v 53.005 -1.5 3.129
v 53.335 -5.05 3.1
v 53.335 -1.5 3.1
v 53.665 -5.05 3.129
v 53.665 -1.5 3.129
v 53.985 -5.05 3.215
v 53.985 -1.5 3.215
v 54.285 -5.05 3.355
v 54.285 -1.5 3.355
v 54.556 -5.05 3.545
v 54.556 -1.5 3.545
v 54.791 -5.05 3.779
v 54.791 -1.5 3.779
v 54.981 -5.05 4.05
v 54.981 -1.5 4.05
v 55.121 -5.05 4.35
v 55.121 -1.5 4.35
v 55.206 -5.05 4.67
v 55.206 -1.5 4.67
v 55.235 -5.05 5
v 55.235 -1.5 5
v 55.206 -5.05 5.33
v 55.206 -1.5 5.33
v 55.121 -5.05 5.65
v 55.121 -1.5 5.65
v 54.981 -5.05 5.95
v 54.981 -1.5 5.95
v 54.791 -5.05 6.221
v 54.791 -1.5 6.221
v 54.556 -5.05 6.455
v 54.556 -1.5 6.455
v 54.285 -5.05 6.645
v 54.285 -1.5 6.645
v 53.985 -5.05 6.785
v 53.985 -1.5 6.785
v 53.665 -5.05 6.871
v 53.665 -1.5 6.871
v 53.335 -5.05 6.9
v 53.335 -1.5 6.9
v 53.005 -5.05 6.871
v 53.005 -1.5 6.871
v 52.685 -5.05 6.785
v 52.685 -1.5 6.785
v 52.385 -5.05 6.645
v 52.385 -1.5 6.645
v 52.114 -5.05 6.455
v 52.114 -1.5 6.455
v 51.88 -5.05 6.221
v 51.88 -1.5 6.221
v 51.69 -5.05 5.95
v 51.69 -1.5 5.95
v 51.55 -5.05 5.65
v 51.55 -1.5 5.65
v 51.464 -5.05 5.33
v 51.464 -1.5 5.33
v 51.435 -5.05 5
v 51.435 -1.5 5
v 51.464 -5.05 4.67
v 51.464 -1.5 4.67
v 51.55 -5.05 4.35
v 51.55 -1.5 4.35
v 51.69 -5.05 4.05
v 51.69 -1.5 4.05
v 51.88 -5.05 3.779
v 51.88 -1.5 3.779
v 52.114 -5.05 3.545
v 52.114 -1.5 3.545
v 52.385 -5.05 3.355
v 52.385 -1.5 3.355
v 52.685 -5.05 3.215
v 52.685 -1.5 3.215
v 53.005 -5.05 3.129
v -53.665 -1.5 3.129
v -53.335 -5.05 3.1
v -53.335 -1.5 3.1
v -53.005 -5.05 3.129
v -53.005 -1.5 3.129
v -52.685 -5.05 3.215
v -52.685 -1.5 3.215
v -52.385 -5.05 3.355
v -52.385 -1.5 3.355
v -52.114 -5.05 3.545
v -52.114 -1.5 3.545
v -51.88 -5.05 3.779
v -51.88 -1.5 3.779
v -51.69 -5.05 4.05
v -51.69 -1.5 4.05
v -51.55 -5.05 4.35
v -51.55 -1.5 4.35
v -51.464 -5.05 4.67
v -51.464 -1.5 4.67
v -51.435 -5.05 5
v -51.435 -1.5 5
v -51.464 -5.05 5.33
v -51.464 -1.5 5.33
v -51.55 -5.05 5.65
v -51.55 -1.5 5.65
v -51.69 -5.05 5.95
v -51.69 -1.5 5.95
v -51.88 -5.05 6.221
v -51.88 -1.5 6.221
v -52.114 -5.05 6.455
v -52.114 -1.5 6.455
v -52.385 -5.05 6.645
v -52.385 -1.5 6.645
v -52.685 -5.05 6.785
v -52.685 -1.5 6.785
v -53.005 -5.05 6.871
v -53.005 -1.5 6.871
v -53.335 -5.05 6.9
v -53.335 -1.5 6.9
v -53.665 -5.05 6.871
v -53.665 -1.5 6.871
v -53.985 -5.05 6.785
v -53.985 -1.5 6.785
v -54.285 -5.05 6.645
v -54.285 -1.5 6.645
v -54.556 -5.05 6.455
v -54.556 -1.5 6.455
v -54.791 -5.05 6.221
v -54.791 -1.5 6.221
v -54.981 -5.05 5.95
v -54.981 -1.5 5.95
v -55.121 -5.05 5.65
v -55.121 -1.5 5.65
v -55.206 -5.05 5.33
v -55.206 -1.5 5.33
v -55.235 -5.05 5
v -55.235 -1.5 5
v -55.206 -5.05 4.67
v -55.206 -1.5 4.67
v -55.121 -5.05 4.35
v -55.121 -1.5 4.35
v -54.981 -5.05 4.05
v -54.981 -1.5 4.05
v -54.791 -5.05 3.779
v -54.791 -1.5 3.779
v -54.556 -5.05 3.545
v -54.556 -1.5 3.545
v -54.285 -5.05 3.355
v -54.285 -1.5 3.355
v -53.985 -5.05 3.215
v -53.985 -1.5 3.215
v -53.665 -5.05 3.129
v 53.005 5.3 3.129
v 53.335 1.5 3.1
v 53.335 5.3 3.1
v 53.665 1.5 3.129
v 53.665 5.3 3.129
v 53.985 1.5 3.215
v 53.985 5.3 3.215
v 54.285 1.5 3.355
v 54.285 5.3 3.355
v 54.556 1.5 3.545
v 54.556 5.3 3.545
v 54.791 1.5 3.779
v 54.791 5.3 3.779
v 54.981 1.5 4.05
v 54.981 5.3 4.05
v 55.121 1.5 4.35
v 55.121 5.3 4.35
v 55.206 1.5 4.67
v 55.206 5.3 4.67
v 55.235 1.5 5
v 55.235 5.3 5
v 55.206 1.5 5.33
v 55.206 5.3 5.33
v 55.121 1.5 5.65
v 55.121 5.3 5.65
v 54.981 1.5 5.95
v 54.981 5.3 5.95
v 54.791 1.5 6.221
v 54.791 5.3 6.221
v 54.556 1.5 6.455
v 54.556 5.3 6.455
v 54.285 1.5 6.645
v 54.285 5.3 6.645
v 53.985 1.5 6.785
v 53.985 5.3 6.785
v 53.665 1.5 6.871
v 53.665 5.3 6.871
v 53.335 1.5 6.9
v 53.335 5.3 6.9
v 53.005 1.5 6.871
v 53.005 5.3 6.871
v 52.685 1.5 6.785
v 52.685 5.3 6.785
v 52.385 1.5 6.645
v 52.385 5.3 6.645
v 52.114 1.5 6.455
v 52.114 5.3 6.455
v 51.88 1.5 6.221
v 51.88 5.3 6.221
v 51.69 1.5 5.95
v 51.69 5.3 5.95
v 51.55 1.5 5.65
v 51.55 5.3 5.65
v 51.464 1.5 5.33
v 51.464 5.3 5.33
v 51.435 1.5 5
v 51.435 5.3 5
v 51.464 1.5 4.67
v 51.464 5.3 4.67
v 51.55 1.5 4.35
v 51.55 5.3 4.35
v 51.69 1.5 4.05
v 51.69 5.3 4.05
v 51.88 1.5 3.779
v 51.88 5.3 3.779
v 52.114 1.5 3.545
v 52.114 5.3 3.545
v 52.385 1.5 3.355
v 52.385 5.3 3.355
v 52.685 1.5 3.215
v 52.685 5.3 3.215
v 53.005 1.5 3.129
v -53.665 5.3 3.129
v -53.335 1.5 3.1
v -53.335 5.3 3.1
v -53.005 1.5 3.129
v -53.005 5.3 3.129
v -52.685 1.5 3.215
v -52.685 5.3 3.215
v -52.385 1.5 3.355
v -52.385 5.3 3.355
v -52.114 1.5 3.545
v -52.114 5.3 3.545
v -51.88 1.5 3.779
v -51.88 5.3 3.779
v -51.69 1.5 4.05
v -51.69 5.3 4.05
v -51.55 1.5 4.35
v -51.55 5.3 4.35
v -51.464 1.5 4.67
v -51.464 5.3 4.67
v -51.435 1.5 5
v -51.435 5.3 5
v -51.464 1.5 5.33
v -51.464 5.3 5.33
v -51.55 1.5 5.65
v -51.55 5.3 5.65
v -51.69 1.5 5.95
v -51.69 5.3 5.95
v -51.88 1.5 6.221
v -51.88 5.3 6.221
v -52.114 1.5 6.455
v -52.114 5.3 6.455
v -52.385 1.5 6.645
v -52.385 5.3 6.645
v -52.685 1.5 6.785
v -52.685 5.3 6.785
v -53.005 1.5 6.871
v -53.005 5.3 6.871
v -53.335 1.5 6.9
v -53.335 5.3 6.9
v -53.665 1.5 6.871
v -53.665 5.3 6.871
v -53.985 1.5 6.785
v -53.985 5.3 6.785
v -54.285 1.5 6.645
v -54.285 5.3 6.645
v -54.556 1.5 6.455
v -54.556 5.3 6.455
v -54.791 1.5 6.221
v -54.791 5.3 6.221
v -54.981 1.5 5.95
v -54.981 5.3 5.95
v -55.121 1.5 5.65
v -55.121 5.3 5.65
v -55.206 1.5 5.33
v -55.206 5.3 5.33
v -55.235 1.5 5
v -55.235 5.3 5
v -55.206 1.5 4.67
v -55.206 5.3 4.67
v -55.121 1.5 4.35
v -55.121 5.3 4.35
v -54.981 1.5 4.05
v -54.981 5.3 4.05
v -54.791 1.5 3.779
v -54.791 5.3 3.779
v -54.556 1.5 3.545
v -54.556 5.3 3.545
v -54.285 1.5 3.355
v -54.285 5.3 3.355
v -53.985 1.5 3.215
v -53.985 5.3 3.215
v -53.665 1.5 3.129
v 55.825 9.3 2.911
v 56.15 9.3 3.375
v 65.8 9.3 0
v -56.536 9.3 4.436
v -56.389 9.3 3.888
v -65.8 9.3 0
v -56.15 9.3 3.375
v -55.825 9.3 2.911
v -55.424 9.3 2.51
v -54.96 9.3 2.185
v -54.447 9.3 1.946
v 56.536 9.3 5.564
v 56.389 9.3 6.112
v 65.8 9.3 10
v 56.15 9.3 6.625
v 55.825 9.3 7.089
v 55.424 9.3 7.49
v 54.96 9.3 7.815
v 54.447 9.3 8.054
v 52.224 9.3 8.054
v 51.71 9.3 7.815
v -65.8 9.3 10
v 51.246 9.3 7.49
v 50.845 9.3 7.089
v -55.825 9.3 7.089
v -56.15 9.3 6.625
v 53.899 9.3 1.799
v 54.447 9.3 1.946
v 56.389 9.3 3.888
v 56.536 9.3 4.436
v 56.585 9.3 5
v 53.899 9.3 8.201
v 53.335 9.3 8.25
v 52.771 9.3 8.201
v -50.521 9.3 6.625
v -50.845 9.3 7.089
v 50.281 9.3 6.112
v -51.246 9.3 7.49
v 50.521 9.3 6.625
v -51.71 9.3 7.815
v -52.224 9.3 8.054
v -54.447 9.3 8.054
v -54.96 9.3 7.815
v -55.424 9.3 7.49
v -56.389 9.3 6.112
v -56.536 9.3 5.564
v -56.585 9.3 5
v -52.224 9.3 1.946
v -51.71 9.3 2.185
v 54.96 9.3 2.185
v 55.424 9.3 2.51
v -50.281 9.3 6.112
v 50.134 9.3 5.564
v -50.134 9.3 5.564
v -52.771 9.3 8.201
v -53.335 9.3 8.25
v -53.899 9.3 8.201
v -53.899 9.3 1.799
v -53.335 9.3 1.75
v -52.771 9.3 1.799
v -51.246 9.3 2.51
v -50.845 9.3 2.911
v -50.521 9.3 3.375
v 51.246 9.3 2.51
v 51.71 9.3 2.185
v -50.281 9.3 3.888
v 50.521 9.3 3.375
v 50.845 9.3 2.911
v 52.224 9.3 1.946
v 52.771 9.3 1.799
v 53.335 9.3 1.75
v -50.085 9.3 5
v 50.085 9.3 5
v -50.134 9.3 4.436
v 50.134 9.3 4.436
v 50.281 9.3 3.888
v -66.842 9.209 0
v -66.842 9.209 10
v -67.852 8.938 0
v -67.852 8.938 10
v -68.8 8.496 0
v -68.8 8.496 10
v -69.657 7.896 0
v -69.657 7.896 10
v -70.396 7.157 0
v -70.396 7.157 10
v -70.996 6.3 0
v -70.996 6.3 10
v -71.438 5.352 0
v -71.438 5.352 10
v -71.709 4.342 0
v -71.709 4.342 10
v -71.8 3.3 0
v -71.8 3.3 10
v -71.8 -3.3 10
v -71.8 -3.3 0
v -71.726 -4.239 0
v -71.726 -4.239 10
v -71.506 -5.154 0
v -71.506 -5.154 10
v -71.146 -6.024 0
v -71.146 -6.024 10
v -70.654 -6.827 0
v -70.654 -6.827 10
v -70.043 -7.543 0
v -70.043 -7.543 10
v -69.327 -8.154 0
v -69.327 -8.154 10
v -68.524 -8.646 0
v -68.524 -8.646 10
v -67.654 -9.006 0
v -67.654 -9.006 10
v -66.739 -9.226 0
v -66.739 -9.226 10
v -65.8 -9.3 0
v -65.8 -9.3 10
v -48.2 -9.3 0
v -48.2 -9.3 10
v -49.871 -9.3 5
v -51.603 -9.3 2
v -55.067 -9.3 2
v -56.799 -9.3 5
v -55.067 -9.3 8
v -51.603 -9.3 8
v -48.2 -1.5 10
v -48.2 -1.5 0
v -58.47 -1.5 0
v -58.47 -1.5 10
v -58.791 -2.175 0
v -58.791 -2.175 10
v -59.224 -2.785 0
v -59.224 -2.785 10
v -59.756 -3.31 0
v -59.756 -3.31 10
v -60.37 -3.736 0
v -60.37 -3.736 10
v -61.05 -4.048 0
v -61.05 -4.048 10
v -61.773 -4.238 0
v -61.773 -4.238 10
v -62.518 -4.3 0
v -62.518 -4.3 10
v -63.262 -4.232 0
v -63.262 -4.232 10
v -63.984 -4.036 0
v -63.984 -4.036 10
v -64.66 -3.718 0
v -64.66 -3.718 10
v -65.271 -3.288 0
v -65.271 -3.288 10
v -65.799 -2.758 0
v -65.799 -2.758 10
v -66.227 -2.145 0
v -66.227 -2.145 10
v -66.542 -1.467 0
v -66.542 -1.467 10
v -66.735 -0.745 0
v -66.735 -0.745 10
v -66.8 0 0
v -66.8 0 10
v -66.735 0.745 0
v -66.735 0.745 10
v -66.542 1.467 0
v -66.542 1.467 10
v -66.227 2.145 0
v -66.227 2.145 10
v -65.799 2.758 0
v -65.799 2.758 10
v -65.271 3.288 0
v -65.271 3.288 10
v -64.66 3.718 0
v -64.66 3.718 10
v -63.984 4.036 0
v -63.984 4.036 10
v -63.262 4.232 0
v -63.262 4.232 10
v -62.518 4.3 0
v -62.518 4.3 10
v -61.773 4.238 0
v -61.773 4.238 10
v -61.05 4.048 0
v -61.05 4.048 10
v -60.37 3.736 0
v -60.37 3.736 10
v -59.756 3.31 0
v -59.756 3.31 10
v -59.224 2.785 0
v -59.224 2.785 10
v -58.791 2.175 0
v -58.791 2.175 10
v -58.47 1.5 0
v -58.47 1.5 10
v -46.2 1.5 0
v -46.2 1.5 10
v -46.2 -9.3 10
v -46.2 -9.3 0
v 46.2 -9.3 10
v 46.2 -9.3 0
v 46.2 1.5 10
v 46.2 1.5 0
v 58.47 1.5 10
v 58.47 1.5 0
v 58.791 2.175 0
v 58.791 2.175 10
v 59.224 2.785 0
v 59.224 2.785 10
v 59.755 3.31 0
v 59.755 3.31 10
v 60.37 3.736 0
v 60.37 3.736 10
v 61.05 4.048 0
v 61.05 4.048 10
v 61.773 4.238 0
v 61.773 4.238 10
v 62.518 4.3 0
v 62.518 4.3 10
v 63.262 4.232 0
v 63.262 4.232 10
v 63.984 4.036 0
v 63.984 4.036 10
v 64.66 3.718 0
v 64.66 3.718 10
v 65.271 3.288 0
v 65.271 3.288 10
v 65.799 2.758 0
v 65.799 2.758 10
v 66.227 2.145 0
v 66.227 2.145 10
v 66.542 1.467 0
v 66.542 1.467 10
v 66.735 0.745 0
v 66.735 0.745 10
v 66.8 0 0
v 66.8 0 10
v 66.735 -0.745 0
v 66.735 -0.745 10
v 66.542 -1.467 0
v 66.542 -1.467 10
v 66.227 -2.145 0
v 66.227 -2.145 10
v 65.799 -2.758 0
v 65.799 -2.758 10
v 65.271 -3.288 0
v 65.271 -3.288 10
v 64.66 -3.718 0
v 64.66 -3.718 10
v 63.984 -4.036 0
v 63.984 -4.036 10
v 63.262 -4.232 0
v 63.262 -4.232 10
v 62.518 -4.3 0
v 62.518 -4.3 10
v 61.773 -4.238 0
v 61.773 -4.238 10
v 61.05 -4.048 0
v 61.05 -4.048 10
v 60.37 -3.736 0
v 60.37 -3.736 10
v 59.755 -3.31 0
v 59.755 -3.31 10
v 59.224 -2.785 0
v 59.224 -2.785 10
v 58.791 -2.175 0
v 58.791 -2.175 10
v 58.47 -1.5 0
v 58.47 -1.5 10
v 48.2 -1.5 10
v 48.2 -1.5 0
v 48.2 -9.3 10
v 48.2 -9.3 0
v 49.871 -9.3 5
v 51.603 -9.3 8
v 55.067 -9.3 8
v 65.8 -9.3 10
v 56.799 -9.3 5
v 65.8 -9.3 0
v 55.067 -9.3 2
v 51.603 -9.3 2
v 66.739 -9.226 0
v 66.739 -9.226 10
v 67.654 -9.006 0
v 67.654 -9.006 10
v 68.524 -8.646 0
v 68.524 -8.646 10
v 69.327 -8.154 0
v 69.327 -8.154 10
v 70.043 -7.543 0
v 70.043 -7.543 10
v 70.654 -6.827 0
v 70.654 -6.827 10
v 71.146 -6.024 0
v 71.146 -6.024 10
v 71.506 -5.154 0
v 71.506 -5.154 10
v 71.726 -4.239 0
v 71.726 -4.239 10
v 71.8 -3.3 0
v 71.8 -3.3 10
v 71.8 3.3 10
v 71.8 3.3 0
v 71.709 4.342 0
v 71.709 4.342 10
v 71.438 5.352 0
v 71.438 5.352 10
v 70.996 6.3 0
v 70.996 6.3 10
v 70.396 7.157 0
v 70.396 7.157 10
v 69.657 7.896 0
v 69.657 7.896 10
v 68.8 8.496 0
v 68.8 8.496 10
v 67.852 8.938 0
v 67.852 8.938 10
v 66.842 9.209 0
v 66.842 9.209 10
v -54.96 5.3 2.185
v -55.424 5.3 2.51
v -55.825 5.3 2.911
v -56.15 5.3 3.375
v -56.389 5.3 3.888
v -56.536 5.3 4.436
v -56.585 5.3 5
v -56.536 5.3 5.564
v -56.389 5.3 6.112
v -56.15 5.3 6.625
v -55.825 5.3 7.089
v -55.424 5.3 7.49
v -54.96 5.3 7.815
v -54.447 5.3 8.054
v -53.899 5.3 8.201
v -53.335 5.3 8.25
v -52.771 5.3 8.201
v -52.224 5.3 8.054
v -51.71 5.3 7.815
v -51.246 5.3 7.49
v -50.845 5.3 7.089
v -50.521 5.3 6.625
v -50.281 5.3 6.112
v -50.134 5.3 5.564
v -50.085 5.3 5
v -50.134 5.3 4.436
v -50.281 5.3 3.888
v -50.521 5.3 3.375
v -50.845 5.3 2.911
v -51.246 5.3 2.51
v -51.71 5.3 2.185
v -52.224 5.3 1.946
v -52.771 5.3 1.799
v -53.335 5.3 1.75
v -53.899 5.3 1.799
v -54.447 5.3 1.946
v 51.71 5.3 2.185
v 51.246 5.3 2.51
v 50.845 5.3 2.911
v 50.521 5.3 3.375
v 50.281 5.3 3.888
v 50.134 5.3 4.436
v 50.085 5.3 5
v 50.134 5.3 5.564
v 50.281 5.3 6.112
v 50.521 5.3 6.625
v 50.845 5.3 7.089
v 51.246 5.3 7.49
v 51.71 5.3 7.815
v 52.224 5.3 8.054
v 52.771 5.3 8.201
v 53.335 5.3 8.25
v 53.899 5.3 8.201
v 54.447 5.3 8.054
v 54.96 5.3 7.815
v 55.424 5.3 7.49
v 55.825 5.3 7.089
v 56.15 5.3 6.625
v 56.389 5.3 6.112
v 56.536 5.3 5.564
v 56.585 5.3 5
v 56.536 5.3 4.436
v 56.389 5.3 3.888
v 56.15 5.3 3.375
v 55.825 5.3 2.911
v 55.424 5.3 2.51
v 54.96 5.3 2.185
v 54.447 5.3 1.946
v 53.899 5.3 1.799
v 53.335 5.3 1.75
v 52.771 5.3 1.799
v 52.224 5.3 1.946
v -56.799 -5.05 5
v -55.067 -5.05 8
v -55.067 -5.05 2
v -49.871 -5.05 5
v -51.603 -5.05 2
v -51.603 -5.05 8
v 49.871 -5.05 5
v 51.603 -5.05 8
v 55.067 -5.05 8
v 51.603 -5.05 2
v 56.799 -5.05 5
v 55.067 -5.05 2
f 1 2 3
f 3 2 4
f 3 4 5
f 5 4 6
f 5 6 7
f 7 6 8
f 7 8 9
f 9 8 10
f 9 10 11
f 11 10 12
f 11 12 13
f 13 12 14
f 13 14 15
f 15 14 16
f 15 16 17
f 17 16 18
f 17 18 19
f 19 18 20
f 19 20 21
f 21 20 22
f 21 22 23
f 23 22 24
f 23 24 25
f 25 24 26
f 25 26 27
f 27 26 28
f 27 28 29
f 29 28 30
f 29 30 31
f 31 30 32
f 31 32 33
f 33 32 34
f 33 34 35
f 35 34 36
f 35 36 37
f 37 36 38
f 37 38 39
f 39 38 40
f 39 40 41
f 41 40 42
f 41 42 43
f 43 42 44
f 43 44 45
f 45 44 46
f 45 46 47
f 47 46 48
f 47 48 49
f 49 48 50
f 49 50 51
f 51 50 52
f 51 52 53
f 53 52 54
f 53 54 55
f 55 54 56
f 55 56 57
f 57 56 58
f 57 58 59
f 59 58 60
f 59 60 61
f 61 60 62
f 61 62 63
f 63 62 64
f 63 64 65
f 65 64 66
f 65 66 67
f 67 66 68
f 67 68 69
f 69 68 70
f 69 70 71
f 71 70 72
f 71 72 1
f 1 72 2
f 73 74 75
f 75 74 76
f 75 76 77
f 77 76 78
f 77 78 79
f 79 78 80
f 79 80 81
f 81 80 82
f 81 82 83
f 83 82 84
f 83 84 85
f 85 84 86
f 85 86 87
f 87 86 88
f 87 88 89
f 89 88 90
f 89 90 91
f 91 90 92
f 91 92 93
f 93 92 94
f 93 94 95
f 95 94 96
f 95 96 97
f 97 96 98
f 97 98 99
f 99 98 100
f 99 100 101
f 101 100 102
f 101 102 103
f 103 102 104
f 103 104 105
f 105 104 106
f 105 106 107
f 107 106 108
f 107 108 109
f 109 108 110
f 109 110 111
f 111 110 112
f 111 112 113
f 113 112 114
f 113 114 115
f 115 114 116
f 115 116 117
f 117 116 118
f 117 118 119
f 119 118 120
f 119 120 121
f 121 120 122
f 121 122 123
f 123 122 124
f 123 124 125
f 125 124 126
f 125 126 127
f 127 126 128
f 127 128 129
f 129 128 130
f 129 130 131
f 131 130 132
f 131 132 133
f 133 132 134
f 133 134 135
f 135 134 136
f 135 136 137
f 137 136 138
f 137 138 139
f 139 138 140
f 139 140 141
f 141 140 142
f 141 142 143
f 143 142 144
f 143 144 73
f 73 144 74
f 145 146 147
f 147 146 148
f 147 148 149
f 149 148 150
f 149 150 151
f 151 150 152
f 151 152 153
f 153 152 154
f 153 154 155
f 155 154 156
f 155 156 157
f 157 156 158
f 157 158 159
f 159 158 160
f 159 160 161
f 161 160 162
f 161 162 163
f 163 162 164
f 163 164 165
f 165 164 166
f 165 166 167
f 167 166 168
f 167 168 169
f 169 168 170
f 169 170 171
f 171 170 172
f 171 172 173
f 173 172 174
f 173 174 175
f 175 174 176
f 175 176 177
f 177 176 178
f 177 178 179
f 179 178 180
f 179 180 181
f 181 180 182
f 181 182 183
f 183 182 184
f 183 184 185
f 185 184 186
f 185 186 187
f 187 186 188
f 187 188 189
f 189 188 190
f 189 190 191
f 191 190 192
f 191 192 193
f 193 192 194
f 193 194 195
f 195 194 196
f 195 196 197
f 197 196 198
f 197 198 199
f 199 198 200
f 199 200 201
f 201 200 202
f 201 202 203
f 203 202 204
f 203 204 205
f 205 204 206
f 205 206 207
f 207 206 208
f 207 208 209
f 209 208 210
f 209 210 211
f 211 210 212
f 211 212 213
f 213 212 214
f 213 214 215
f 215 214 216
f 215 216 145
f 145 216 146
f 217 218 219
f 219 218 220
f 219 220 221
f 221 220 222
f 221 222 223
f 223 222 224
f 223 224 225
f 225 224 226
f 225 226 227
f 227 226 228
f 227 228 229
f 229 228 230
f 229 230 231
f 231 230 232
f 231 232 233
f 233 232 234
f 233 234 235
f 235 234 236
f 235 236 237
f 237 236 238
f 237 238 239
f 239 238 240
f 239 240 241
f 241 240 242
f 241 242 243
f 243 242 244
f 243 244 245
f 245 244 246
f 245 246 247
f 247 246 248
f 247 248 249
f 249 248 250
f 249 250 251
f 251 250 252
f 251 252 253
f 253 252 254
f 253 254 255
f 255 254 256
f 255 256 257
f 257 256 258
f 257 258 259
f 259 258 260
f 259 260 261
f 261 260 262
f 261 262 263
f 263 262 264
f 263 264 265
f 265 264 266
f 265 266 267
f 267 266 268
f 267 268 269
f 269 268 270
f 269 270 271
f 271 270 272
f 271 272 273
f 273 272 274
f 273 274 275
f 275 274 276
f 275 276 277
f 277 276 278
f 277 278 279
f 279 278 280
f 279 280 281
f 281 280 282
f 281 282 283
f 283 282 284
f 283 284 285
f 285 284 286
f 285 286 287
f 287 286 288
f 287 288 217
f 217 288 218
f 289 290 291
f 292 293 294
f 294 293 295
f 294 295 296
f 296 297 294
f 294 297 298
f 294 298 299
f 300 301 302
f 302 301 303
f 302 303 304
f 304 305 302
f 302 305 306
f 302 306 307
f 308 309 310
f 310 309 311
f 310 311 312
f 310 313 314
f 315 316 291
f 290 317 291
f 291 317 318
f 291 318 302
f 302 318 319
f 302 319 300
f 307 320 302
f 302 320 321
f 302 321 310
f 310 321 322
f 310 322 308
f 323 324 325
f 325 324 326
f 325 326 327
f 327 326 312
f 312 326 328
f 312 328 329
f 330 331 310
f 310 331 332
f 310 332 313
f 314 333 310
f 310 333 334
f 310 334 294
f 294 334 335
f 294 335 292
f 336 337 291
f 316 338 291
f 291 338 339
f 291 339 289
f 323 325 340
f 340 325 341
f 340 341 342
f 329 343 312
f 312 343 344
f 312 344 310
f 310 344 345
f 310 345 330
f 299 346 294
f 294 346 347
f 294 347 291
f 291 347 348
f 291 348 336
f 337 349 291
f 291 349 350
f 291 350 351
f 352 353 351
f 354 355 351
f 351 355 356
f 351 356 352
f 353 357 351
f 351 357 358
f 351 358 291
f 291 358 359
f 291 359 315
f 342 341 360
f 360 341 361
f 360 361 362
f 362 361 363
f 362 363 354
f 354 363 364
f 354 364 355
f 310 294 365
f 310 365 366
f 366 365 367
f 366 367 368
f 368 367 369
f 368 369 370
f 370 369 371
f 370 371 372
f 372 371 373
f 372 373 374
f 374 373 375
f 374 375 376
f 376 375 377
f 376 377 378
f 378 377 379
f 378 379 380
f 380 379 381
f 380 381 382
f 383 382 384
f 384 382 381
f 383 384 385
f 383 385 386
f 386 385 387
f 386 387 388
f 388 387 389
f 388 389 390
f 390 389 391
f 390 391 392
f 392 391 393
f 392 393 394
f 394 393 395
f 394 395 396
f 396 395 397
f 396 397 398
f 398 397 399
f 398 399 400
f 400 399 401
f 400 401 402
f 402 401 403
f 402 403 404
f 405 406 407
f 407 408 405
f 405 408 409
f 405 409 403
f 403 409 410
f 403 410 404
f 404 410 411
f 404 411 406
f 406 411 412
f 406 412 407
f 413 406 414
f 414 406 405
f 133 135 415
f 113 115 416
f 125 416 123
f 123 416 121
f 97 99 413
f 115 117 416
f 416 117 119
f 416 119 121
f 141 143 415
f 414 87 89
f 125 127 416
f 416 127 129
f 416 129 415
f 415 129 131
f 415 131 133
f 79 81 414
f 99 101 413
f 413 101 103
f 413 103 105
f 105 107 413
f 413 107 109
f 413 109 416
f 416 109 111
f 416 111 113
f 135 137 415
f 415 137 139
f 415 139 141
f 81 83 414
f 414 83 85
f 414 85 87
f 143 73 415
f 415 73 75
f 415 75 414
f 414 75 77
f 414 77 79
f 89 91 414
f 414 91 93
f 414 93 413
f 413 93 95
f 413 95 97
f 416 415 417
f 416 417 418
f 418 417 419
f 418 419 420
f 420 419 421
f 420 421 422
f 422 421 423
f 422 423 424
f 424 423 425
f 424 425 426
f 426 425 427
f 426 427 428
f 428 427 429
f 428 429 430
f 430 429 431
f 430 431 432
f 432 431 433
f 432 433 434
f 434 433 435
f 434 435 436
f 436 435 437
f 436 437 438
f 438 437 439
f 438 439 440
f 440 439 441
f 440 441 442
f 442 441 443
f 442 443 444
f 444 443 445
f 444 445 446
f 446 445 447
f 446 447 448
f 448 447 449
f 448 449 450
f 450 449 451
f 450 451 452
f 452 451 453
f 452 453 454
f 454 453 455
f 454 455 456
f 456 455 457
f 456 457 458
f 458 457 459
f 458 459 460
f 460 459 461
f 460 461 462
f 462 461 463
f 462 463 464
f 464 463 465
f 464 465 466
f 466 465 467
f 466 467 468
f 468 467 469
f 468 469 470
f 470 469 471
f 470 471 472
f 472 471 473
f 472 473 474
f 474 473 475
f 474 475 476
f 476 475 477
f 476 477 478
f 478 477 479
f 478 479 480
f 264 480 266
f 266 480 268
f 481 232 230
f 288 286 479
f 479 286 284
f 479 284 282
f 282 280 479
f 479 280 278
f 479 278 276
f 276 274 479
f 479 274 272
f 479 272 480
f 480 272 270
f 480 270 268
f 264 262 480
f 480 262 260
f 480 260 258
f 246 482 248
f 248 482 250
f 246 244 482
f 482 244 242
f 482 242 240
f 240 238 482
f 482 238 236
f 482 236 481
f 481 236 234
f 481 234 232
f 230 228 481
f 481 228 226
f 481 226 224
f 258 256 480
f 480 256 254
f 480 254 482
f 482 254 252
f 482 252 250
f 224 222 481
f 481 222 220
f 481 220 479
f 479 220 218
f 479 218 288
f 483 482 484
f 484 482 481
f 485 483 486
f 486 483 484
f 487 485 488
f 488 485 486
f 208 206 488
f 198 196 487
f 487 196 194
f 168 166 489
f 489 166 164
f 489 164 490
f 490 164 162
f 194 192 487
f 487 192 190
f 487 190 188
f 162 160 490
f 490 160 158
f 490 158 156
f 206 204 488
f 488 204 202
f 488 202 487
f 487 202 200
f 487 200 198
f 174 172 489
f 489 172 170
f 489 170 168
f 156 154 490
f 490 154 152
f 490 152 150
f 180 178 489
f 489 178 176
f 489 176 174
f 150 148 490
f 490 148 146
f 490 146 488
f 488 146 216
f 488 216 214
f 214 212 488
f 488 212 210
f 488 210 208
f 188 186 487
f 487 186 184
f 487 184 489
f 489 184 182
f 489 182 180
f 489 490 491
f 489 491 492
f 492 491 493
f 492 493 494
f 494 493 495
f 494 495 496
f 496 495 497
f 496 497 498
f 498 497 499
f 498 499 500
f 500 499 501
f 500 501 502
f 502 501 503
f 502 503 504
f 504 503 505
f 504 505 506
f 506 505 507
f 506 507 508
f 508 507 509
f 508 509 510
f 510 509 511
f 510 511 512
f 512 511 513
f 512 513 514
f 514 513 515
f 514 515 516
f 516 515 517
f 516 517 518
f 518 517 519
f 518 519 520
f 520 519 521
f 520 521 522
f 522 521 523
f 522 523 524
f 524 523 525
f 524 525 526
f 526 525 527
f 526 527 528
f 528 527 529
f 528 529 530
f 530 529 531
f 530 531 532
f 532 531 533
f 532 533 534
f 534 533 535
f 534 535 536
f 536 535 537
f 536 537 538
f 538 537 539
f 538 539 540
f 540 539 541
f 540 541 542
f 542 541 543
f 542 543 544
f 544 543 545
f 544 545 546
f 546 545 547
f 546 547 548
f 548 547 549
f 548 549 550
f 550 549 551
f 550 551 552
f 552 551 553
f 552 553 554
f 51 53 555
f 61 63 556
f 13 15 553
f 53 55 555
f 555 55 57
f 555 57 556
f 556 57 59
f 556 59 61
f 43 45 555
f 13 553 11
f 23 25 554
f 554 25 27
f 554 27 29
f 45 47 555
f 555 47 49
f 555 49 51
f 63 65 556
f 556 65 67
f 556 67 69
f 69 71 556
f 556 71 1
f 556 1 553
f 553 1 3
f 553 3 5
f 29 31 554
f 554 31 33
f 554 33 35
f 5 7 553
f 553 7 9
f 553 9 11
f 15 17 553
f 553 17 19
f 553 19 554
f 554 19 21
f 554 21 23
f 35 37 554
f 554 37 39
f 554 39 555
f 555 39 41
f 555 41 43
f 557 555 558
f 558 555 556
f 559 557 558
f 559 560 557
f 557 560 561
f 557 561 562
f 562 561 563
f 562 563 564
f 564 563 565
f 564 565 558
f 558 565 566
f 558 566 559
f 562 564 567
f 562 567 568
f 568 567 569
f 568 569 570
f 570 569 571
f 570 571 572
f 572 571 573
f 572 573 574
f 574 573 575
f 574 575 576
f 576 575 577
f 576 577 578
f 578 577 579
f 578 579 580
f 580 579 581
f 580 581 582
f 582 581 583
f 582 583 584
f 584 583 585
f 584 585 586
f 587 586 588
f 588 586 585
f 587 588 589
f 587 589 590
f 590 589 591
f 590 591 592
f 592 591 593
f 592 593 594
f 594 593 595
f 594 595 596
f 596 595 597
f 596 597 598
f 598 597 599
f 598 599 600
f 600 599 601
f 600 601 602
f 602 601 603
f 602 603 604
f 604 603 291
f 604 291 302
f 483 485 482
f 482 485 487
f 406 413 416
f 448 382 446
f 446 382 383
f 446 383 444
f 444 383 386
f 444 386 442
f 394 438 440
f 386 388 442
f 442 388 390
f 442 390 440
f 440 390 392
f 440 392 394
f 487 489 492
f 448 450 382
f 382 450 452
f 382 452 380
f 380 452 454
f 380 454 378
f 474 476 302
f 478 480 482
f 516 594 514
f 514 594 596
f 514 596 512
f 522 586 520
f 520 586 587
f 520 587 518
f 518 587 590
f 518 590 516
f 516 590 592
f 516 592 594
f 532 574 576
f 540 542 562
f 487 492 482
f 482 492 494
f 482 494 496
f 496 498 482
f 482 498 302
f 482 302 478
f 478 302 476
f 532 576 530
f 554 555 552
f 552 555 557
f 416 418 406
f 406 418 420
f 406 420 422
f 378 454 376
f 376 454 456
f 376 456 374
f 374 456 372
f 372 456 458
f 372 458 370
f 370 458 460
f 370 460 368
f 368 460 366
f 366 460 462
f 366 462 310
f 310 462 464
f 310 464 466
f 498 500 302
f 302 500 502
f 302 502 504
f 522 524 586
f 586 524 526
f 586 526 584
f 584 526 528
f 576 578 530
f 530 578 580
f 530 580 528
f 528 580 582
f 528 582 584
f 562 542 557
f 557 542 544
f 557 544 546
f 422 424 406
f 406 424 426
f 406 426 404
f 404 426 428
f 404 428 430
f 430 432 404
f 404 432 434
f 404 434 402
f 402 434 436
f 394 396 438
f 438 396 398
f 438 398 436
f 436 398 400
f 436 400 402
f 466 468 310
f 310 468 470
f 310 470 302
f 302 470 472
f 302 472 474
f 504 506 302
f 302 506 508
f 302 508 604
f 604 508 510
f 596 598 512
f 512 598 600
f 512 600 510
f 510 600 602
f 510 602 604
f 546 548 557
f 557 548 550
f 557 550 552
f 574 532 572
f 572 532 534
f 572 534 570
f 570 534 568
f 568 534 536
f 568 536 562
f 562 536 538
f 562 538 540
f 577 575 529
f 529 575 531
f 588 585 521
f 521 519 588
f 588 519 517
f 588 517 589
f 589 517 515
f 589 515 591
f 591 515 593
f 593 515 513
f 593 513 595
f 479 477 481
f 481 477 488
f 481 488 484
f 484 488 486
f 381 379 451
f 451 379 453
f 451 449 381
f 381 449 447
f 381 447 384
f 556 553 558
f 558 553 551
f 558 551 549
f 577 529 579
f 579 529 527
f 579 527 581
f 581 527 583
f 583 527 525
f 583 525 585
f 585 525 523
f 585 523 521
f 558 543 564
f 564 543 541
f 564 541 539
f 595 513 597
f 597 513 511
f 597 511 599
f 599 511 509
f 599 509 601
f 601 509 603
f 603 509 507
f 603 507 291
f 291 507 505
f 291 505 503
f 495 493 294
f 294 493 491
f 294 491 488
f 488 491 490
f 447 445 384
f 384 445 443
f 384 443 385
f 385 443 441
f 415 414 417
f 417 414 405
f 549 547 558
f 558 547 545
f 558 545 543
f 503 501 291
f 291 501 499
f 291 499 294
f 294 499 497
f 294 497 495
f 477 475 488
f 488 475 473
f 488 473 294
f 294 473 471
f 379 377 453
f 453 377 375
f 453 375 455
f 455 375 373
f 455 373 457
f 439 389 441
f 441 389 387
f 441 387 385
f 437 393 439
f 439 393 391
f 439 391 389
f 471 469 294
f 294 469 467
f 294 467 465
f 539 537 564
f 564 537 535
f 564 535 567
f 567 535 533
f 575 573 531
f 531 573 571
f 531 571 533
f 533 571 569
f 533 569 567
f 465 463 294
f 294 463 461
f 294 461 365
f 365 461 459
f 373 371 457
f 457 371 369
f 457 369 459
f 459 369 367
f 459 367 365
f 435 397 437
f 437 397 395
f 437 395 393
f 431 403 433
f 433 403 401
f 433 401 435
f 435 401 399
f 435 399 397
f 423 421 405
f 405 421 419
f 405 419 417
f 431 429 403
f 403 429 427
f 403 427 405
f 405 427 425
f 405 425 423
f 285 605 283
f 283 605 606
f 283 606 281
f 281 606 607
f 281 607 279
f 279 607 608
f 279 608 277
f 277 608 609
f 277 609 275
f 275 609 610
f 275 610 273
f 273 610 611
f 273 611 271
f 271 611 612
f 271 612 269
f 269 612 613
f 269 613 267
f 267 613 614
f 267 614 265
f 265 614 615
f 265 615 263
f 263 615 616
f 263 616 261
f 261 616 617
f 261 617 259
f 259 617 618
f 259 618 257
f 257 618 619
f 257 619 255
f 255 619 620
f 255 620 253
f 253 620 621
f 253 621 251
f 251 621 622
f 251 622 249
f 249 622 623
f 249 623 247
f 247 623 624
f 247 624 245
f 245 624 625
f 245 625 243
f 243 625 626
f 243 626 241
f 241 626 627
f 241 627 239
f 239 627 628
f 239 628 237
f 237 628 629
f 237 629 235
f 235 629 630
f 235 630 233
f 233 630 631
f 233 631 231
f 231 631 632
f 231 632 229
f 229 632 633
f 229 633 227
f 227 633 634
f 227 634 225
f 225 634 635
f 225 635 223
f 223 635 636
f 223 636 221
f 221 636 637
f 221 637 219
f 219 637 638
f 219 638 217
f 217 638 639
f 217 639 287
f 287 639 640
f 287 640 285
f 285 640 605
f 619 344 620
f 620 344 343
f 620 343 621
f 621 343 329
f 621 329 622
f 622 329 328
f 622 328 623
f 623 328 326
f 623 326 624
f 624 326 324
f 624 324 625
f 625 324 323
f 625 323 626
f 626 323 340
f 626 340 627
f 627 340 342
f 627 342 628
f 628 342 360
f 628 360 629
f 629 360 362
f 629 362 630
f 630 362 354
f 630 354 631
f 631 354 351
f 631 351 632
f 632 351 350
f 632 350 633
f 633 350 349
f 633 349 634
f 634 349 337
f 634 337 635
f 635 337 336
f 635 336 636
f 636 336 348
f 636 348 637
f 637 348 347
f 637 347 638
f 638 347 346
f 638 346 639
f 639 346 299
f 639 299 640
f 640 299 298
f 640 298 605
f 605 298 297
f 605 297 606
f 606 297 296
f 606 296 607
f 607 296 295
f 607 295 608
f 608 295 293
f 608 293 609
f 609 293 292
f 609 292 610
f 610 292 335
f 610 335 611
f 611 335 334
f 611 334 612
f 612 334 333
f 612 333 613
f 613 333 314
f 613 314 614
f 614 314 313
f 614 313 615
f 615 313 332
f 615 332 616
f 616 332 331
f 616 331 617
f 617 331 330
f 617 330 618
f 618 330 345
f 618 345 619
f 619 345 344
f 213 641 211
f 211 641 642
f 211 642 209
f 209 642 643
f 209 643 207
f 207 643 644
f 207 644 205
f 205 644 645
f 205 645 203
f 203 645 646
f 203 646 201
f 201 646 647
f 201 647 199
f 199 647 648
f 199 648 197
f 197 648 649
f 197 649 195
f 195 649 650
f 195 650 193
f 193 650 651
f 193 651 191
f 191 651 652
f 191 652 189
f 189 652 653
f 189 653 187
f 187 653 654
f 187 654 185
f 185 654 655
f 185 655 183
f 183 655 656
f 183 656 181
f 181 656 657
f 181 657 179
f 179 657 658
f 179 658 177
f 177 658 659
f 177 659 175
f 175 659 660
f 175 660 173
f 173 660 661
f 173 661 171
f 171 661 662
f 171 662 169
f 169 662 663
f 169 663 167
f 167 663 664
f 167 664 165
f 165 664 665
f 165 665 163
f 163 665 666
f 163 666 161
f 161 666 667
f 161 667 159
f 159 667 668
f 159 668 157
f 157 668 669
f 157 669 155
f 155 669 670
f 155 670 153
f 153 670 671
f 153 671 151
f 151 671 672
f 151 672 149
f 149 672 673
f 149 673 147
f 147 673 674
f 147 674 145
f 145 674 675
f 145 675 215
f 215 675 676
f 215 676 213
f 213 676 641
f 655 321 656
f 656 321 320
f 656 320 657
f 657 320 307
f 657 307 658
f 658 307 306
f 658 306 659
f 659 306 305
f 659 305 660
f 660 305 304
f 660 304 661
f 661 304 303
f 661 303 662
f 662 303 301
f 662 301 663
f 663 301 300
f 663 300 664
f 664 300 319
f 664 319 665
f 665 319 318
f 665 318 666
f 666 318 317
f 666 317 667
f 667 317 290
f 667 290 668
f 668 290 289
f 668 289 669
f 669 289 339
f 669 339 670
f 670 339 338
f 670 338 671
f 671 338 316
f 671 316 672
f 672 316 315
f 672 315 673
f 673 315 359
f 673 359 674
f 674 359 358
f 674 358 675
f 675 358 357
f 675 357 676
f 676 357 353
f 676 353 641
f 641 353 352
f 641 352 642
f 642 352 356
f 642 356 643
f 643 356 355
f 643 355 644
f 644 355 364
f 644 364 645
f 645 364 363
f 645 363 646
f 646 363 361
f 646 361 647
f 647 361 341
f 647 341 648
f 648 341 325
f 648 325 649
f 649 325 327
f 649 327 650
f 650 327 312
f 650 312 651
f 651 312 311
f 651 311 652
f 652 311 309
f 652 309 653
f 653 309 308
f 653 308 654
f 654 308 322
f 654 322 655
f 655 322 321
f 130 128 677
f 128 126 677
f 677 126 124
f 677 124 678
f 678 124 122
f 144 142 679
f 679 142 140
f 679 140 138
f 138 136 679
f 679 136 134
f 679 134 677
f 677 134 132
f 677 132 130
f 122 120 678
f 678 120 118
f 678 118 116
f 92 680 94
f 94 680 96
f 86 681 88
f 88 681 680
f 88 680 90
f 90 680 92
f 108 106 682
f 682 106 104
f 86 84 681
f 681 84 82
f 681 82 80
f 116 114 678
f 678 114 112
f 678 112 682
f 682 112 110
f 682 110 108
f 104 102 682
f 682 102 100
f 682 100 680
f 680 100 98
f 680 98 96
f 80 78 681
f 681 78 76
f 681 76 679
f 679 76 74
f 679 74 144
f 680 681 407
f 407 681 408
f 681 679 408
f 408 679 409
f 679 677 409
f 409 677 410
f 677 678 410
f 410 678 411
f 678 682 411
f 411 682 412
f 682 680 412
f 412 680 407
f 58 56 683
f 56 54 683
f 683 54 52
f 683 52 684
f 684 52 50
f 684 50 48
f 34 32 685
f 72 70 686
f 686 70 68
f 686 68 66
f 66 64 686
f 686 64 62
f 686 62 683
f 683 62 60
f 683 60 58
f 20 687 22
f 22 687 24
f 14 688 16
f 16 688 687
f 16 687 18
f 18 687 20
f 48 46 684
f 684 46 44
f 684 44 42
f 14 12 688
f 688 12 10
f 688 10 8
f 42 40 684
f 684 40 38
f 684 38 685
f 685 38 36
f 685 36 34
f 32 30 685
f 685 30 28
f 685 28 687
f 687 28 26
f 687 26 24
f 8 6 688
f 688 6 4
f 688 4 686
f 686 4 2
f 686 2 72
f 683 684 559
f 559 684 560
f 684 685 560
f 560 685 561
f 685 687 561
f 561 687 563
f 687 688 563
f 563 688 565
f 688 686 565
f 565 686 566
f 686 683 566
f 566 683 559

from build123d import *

# Parameters (mm, degrees)
SALIENTE_EXTRUIR1_DEPTH = 10
CROQUIS2_R              = 1.9
CORTAR_EXTRUIR1_DEPTH   = 25
CROQUIS5_R              = 3.25
CORTAR_EXTRUIR3_DEPTH   = 4
CORTAR_EXTRUIR4_DEPTH   = 4.25


with BuildPart() as part:
    # Croquis1 → Saliente-Extruir1 (new body)
    with BuildSketch(Plane.XY):
        with BuildLine():
            Line((65.8, 9.3), (-65.8, 9.3))
            ThreePointArc((-65.8, 9.3), (-70.042640687, 7.542640687), (-71.8, 3.3))
            Line((-71.8, 3.3), (-71.8, -3.3))
            ThreePointArc((-71.8, -3.3), (-70.042640687, -7.542640687), (-65.8, -9.3))
            Line((-65.8, -9.3), (-48.2, -9.3))
            Line((-48.2, -9.3), (-48.2, -1.5))
            Line((-48.2, -1.5), (-58.470111664, -1.5))
            ThreePointArc((-58.470111664, -1.5), (-66.8, 0), (-58.470111664, 1.5))
            Line((-58.470111664, 1.5), (-46.2, 1.5))
            Line((-46.2, 1.5), (-46.2, -9.3))
            Line((-46.2, -9.3), (46.2, -9.3))
            Line((46.2, -9.3), (46.2, 1.5))
            Line((46.2, 1.5), (58.470111664, 1.5))
            ThreePointArc((58.470111664, 1.5), (63.262063041, 4.231933355), (66.8, 0))
            ThreePointArc((66.8, 0), (63.262063041, -4.231933355), (58.470111664, -1.5))
            Line((58.470111664, -1.5), (48.2, -1.5))
            Line((48.2, -1.5), (48.2, -9.3))
            Line((48.2, -9.3), (65.8, -9.3))
            ThreePointArc((65.8, -9.3), (70.042640687, -7.542640687), (71.8, -3.3))
            Line((71.8, -3.3), (71.8, 3.3))
            ThreePointArc((71.8, 3.3), (70.042640687, 7.542640687), (65.8, 9.3))
        make_face()
    extrude(amount=SALIENTE_EXTRUIR1_DEPTH)

    # Croquis2 → Cortar-Extruir1 (cut, symmetric)
    with BuildSketch(Plane.XZ.offset(-1.5)):
        with Locations(Location((-53.335111664, 5, 0), (0, 0, 180))):
            Circle(CROQUIS2_R)
        with Locations(Location((53.335111664, 5, 0), (0, 0, 180))):
            Circle(CROQUIS2_R)
    extrude(amount=CORTAR_EXTRUIR1_DEPTH, both=True, mode=Mode.SUBTRACT)

    # Croquis5 → Cortar-Extruir3 (cut)
    with BuildSketch(Plane(origin=(0, 9.3, 0), x_dir=(1, 0, 0), z_dir=(0, 1, 0))):
        with Locations(Location((-53.335111664, -5, 0), (0, 0, 270))):
            Circle(CROQUIS5_R)
        with Locations(Location((53.335111664, -5, 0), (0, 0, 270))):
            Circle(CROQUIS5_R)
    extrude(amount=-CORTAR_EXTRUIR3_DEPTH, mode=Mode.SUBTRACT)

    # Croquis6 → Cortar-Extruir4 (cut)
    with BuildSketch(Plane(origin=(0, -9.3, 0), x_dir=(-1, 0, 0), z_dir=(0, -1, 0))):
        Polygon((49.871010049, -5), (51.603060857, -8), (55.067162472, -8), (56.799213279, -5), (55.067162472, -2), (51.603060857, -2), align=None)
        Polygon((-49.871010049, -5), (-51.603060857, -2), (-55.067162472, -2), (-56.799213279, -5), (-55.067162472, -8), (-51.603060857, -8), align=None)
    extrude(amount=-CORTAR_EXTRUIR4_DEPTH, mode=Mode.SUBTRACT)


solid = part.part
